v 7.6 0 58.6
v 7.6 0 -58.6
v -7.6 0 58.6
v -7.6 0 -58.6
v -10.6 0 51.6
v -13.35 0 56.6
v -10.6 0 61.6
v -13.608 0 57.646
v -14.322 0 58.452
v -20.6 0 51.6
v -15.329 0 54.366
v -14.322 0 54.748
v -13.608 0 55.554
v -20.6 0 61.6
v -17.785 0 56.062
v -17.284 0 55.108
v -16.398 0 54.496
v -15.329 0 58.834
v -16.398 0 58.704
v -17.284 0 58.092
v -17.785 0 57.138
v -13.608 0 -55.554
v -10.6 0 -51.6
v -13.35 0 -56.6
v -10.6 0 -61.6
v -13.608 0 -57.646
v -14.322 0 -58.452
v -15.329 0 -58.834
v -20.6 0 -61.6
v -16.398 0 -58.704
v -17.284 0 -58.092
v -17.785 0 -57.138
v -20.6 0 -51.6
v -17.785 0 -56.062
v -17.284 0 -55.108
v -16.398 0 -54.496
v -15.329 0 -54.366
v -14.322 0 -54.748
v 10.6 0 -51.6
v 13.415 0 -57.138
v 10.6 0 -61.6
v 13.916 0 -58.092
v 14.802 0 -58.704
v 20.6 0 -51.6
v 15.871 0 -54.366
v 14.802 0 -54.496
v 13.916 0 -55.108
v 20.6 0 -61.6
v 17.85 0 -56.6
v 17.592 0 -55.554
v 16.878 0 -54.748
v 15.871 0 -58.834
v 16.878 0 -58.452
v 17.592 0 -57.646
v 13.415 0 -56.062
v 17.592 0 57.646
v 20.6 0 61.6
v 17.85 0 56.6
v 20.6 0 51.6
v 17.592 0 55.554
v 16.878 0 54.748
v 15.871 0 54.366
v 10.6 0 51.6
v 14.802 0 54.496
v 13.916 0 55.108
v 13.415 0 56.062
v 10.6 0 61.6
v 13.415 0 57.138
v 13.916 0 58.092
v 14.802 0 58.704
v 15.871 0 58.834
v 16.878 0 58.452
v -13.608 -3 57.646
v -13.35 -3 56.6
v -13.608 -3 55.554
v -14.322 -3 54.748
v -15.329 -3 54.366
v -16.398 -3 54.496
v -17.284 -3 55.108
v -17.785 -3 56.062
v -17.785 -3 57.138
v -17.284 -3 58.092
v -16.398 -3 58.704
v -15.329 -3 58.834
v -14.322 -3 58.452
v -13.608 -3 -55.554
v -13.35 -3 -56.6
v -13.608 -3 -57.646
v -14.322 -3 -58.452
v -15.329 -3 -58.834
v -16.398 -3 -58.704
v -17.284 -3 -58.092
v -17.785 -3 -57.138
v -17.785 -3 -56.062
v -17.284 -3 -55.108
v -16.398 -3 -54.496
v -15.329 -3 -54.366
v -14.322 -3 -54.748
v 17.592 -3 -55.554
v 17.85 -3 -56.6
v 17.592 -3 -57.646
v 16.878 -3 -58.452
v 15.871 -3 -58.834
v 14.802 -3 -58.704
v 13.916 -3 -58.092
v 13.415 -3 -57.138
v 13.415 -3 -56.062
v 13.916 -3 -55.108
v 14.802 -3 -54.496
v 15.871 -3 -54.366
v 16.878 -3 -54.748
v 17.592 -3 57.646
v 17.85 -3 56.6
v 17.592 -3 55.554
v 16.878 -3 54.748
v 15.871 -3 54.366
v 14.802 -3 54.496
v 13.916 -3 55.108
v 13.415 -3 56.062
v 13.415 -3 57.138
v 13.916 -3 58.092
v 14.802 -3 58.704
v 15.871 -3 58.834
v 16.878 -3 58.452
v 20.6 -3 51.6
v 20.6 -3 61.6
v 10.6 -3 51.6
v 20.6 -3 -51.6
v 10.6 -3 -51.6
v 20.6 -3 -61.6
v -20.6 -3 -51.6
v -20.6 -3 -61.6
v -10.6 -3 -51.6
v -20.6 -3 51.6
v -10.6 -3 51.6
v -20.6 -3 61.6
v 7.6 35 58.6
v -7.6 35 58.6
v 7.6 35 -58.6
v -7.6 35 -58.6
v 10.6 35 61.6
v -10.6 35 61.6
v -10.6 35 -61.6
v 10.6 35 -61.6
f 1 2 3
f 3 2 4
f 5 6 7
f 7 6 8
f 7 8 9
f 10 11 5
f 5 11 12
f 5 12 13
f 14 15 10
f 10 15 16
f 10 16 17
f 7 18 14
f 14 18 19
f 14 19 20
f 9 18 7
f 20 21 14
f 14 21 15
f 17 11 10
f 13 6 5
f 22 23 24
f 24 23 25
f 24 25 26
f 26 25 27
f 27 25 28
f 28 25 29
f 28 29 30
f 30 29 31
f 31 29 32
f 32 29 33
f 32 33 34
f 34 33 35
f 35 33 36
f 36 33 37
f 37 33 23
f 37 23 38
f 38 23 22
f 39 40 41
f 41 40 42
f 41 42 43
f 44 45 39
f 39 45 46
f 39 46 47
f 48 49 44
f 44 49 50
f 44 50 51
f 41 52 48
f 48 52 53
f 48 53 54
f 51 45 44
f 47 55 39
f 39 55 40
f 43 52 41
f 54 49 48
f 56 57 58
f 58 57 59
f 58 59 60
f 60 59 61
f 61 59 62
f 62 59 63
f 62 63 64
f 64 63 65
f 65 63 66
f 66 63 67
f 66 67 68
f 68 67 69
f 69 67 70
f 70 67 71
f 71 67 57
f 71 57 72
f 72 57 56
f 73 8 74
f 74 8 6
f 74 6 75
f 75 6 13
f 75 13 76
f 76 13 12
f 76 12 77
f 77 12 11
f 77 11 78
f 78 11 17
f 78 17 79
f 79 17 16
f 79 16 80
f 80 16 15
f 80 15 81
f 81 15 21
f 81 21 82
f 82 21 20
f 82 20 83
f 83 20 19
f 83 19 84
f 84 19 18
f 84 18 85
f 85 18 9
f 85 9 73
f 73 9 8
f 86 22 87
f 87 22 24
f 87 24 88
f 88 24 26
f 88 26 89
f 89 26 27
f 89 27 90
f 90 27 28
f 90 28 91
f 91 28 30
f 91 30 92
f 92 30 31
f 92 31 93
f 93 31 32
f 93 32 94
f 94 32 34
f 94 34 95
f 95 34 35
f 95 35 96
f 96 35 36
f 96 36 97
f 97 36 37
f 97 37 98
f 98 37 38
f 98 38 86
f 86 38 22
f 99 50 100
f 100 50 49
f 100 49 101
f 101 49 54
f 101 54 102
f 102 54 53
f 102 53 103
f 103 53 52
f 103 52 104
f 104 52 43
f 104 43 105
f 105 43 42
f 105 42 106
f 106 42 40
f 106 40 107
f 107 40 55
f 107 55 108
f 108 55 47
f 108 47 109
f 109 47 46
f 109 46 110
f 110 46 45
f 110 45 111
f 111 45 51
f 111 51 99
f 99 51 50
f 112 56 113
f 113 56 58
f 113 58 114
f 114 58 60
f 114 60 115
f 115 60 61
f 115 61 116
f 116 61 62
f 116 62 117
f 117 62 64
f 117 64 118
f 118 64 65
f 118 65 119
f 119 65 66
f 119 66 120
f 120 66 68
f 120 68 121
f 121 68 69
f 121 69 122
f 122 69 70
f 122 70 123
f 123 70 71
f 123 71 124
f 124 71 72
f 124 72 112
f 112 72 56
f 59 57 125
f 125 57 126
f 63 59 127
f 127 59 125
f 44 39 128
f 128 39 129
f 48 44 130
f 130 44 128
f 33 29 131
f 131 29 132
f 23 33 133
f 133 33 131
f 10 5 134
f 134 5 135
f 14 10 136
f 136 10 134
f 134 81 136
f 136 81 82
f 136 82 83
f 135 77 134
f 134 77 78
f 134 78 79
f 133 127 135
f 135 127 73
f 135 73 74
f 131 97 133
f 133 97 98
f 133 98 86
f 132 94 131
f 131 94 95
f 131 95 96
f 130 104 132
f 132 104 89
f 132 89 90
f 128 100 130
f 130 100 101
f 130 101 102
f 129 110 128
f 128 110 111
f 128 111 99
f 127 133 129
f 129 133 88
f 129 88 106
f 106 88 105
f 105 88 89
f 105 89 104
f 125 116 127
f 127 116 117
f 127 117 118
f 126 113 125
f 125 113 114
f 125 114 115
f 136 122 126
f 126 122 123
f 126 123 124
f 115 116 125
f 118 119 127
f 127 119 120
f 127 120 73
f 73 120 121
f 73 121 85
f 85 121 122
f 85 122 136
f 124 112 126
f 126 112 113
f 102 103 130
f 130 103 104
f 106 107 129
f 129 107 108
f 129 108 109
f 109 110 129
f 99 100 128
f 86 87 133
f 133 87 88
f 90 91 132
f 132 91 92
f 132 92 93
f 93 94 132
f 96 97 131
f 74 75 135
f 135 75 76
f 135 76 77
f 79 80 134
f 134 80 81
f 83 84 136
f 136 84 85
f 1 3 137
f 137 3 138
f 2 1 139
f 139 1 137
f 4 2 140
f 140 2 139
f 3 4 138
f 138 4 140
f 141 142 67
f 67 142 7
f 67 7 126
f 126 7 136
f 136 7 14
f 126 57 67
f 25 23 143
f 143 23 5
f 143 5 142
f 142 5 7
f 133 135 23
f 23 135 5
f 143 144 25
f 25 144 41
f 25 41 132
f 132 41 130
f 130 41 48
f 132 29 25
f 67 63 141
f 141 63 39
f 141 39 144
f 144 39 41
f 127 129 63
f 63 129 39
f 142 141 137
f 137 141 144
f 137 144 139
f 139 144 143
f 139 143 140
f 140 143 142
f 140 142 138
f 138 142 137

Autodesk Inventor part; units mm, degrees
ref_plane "YZ Plane" through (0, 0, 0) normal (1, 0, 0) x (0, 1, 0)
ref_plane "XZ Plane" through (0, 0, 0) normal (0, 1, 0) x (-1, 0, 0)
ref_plane "XY Plane" through (0, 0, 0) normal (0, 0, 1) x (1, 0, 0)
sketch "Sketch1" plane through (0, 0, 0) normal (0, 1, 0) x (-1, 0, 0)
  line L0 (7.6, 58.6) -> (-7.6, 58.6)
  line L1 (-7.6, 58.6) -> (-7.6, -58.6)
  line L2 (-7.6, -58.6) -> (7.6, -58.6)
  line L3 (7.6, -58.6) -> (7.6, 58.6)
  line L4 (7.6, 58.6) -> (-7.6, -58.6) construction
  line L5 (-7.6, 58.6) -> (7.6, -58.6) construction
  line L6 (10.6, 61.6) -> (-10.6, 61.6)
  line L7 (-10.6, 61.6) -> (-10.6, -61.6)
  line L8 (-10.6, -61.6) -> (10.6, -61.6)
  line L9 (10.6, -61.6) -> (10.6, 61.6)
  point P0 (0, 0)
  dimension "d0" = 15.2
  dimension "d1" = 117.2
  dimension "d2" = 3
extrude "Extrusion1" add sketch "Sketch1" along normal blind 35
sketch "Sketch2" plane through (0, 0, 0) normal (0, -1, 0) x (1, 0, 0)
  circle A0 centre (15.6, 56.6) radius 2.25
  line L0 (10.6, 61.6) -> (10.6, -61.6) projected
  line L1 (-10.6, 61.6) -> (10.6, 61.6) projected
  line L2 (10.6, 0) -> (40.0952, 0)
  line L3 (10.6, -61.6) -> (-10.6, -61.6) projected
  line L4 (0, -61.6) -> (0, -71.4925)
  line L5 (10.6, 61.6) -> (20.6, 61.6)
  line L6 (20.6, 61.6) -> (20.6, 51.6)
  line L7 (20.6, 51.6) -> (10.6, 51.6)
  line L8 (10.6, 51.6) -> (10.6, 61.6)
  line L9 (-10.6, 61.6) -> (10.6, 61.6)
  line L10 (10.6, 61.6) -> (10.6, -61.6)
  line L11 (10.6, -61.6) -> (-10.6, -61.6)
  line L12 (-10.6, -61.6) -> (-10.6, 61.6)
  circle A1 centre (15.6, -56.6) radius 2.25
  line L13 (10.6, -61.6) -> (20.6, -61.6)
  line L14 (20.6, -61.6) -> (20.6, -51.6)
  line L15 (20.6, -51.6) -> (10.6, -51.6)
  line L16 (10.6, -51.6) -> (10.6, -61.6)
  circle A2 centre (-15.6, 56.6) radius 2.25
  line L17 (-10.6, 61.6) -> (-20.6, 61.6)
  line L18 (-20.6, 61.6) -> (-20.6, 51.6)
  line L19 (-20.6, 51.6) -> (-10.6, 51.6)
  line L20 (-10.6, 51.6) -> (-10.6, 61.6)
  line L21 (-20.6, -51.6) -> (-10.6, -51.6)
  circle A3 centre (-15.6, -56.6) radius 2.25
  line L22 (-10.6, -61.6) -> (-20.6, -61.6)
  line L23 (-20.6, -61.6) -> (-20.6, -51.6)
  line L24 (-10.6, -51.6) -> (-10.6, -61.6)
  point P0 (0, 0)
  dimension "d5" = 4.5
  dimension "d6" = 5
  dimension "d7" = 5
  dimension "d8" = 5
  dimension "d9" = 5
extrude "Extrusion2" add sketch "Sketch2" along normal blind 3
properties part number "HDD_fastening"
